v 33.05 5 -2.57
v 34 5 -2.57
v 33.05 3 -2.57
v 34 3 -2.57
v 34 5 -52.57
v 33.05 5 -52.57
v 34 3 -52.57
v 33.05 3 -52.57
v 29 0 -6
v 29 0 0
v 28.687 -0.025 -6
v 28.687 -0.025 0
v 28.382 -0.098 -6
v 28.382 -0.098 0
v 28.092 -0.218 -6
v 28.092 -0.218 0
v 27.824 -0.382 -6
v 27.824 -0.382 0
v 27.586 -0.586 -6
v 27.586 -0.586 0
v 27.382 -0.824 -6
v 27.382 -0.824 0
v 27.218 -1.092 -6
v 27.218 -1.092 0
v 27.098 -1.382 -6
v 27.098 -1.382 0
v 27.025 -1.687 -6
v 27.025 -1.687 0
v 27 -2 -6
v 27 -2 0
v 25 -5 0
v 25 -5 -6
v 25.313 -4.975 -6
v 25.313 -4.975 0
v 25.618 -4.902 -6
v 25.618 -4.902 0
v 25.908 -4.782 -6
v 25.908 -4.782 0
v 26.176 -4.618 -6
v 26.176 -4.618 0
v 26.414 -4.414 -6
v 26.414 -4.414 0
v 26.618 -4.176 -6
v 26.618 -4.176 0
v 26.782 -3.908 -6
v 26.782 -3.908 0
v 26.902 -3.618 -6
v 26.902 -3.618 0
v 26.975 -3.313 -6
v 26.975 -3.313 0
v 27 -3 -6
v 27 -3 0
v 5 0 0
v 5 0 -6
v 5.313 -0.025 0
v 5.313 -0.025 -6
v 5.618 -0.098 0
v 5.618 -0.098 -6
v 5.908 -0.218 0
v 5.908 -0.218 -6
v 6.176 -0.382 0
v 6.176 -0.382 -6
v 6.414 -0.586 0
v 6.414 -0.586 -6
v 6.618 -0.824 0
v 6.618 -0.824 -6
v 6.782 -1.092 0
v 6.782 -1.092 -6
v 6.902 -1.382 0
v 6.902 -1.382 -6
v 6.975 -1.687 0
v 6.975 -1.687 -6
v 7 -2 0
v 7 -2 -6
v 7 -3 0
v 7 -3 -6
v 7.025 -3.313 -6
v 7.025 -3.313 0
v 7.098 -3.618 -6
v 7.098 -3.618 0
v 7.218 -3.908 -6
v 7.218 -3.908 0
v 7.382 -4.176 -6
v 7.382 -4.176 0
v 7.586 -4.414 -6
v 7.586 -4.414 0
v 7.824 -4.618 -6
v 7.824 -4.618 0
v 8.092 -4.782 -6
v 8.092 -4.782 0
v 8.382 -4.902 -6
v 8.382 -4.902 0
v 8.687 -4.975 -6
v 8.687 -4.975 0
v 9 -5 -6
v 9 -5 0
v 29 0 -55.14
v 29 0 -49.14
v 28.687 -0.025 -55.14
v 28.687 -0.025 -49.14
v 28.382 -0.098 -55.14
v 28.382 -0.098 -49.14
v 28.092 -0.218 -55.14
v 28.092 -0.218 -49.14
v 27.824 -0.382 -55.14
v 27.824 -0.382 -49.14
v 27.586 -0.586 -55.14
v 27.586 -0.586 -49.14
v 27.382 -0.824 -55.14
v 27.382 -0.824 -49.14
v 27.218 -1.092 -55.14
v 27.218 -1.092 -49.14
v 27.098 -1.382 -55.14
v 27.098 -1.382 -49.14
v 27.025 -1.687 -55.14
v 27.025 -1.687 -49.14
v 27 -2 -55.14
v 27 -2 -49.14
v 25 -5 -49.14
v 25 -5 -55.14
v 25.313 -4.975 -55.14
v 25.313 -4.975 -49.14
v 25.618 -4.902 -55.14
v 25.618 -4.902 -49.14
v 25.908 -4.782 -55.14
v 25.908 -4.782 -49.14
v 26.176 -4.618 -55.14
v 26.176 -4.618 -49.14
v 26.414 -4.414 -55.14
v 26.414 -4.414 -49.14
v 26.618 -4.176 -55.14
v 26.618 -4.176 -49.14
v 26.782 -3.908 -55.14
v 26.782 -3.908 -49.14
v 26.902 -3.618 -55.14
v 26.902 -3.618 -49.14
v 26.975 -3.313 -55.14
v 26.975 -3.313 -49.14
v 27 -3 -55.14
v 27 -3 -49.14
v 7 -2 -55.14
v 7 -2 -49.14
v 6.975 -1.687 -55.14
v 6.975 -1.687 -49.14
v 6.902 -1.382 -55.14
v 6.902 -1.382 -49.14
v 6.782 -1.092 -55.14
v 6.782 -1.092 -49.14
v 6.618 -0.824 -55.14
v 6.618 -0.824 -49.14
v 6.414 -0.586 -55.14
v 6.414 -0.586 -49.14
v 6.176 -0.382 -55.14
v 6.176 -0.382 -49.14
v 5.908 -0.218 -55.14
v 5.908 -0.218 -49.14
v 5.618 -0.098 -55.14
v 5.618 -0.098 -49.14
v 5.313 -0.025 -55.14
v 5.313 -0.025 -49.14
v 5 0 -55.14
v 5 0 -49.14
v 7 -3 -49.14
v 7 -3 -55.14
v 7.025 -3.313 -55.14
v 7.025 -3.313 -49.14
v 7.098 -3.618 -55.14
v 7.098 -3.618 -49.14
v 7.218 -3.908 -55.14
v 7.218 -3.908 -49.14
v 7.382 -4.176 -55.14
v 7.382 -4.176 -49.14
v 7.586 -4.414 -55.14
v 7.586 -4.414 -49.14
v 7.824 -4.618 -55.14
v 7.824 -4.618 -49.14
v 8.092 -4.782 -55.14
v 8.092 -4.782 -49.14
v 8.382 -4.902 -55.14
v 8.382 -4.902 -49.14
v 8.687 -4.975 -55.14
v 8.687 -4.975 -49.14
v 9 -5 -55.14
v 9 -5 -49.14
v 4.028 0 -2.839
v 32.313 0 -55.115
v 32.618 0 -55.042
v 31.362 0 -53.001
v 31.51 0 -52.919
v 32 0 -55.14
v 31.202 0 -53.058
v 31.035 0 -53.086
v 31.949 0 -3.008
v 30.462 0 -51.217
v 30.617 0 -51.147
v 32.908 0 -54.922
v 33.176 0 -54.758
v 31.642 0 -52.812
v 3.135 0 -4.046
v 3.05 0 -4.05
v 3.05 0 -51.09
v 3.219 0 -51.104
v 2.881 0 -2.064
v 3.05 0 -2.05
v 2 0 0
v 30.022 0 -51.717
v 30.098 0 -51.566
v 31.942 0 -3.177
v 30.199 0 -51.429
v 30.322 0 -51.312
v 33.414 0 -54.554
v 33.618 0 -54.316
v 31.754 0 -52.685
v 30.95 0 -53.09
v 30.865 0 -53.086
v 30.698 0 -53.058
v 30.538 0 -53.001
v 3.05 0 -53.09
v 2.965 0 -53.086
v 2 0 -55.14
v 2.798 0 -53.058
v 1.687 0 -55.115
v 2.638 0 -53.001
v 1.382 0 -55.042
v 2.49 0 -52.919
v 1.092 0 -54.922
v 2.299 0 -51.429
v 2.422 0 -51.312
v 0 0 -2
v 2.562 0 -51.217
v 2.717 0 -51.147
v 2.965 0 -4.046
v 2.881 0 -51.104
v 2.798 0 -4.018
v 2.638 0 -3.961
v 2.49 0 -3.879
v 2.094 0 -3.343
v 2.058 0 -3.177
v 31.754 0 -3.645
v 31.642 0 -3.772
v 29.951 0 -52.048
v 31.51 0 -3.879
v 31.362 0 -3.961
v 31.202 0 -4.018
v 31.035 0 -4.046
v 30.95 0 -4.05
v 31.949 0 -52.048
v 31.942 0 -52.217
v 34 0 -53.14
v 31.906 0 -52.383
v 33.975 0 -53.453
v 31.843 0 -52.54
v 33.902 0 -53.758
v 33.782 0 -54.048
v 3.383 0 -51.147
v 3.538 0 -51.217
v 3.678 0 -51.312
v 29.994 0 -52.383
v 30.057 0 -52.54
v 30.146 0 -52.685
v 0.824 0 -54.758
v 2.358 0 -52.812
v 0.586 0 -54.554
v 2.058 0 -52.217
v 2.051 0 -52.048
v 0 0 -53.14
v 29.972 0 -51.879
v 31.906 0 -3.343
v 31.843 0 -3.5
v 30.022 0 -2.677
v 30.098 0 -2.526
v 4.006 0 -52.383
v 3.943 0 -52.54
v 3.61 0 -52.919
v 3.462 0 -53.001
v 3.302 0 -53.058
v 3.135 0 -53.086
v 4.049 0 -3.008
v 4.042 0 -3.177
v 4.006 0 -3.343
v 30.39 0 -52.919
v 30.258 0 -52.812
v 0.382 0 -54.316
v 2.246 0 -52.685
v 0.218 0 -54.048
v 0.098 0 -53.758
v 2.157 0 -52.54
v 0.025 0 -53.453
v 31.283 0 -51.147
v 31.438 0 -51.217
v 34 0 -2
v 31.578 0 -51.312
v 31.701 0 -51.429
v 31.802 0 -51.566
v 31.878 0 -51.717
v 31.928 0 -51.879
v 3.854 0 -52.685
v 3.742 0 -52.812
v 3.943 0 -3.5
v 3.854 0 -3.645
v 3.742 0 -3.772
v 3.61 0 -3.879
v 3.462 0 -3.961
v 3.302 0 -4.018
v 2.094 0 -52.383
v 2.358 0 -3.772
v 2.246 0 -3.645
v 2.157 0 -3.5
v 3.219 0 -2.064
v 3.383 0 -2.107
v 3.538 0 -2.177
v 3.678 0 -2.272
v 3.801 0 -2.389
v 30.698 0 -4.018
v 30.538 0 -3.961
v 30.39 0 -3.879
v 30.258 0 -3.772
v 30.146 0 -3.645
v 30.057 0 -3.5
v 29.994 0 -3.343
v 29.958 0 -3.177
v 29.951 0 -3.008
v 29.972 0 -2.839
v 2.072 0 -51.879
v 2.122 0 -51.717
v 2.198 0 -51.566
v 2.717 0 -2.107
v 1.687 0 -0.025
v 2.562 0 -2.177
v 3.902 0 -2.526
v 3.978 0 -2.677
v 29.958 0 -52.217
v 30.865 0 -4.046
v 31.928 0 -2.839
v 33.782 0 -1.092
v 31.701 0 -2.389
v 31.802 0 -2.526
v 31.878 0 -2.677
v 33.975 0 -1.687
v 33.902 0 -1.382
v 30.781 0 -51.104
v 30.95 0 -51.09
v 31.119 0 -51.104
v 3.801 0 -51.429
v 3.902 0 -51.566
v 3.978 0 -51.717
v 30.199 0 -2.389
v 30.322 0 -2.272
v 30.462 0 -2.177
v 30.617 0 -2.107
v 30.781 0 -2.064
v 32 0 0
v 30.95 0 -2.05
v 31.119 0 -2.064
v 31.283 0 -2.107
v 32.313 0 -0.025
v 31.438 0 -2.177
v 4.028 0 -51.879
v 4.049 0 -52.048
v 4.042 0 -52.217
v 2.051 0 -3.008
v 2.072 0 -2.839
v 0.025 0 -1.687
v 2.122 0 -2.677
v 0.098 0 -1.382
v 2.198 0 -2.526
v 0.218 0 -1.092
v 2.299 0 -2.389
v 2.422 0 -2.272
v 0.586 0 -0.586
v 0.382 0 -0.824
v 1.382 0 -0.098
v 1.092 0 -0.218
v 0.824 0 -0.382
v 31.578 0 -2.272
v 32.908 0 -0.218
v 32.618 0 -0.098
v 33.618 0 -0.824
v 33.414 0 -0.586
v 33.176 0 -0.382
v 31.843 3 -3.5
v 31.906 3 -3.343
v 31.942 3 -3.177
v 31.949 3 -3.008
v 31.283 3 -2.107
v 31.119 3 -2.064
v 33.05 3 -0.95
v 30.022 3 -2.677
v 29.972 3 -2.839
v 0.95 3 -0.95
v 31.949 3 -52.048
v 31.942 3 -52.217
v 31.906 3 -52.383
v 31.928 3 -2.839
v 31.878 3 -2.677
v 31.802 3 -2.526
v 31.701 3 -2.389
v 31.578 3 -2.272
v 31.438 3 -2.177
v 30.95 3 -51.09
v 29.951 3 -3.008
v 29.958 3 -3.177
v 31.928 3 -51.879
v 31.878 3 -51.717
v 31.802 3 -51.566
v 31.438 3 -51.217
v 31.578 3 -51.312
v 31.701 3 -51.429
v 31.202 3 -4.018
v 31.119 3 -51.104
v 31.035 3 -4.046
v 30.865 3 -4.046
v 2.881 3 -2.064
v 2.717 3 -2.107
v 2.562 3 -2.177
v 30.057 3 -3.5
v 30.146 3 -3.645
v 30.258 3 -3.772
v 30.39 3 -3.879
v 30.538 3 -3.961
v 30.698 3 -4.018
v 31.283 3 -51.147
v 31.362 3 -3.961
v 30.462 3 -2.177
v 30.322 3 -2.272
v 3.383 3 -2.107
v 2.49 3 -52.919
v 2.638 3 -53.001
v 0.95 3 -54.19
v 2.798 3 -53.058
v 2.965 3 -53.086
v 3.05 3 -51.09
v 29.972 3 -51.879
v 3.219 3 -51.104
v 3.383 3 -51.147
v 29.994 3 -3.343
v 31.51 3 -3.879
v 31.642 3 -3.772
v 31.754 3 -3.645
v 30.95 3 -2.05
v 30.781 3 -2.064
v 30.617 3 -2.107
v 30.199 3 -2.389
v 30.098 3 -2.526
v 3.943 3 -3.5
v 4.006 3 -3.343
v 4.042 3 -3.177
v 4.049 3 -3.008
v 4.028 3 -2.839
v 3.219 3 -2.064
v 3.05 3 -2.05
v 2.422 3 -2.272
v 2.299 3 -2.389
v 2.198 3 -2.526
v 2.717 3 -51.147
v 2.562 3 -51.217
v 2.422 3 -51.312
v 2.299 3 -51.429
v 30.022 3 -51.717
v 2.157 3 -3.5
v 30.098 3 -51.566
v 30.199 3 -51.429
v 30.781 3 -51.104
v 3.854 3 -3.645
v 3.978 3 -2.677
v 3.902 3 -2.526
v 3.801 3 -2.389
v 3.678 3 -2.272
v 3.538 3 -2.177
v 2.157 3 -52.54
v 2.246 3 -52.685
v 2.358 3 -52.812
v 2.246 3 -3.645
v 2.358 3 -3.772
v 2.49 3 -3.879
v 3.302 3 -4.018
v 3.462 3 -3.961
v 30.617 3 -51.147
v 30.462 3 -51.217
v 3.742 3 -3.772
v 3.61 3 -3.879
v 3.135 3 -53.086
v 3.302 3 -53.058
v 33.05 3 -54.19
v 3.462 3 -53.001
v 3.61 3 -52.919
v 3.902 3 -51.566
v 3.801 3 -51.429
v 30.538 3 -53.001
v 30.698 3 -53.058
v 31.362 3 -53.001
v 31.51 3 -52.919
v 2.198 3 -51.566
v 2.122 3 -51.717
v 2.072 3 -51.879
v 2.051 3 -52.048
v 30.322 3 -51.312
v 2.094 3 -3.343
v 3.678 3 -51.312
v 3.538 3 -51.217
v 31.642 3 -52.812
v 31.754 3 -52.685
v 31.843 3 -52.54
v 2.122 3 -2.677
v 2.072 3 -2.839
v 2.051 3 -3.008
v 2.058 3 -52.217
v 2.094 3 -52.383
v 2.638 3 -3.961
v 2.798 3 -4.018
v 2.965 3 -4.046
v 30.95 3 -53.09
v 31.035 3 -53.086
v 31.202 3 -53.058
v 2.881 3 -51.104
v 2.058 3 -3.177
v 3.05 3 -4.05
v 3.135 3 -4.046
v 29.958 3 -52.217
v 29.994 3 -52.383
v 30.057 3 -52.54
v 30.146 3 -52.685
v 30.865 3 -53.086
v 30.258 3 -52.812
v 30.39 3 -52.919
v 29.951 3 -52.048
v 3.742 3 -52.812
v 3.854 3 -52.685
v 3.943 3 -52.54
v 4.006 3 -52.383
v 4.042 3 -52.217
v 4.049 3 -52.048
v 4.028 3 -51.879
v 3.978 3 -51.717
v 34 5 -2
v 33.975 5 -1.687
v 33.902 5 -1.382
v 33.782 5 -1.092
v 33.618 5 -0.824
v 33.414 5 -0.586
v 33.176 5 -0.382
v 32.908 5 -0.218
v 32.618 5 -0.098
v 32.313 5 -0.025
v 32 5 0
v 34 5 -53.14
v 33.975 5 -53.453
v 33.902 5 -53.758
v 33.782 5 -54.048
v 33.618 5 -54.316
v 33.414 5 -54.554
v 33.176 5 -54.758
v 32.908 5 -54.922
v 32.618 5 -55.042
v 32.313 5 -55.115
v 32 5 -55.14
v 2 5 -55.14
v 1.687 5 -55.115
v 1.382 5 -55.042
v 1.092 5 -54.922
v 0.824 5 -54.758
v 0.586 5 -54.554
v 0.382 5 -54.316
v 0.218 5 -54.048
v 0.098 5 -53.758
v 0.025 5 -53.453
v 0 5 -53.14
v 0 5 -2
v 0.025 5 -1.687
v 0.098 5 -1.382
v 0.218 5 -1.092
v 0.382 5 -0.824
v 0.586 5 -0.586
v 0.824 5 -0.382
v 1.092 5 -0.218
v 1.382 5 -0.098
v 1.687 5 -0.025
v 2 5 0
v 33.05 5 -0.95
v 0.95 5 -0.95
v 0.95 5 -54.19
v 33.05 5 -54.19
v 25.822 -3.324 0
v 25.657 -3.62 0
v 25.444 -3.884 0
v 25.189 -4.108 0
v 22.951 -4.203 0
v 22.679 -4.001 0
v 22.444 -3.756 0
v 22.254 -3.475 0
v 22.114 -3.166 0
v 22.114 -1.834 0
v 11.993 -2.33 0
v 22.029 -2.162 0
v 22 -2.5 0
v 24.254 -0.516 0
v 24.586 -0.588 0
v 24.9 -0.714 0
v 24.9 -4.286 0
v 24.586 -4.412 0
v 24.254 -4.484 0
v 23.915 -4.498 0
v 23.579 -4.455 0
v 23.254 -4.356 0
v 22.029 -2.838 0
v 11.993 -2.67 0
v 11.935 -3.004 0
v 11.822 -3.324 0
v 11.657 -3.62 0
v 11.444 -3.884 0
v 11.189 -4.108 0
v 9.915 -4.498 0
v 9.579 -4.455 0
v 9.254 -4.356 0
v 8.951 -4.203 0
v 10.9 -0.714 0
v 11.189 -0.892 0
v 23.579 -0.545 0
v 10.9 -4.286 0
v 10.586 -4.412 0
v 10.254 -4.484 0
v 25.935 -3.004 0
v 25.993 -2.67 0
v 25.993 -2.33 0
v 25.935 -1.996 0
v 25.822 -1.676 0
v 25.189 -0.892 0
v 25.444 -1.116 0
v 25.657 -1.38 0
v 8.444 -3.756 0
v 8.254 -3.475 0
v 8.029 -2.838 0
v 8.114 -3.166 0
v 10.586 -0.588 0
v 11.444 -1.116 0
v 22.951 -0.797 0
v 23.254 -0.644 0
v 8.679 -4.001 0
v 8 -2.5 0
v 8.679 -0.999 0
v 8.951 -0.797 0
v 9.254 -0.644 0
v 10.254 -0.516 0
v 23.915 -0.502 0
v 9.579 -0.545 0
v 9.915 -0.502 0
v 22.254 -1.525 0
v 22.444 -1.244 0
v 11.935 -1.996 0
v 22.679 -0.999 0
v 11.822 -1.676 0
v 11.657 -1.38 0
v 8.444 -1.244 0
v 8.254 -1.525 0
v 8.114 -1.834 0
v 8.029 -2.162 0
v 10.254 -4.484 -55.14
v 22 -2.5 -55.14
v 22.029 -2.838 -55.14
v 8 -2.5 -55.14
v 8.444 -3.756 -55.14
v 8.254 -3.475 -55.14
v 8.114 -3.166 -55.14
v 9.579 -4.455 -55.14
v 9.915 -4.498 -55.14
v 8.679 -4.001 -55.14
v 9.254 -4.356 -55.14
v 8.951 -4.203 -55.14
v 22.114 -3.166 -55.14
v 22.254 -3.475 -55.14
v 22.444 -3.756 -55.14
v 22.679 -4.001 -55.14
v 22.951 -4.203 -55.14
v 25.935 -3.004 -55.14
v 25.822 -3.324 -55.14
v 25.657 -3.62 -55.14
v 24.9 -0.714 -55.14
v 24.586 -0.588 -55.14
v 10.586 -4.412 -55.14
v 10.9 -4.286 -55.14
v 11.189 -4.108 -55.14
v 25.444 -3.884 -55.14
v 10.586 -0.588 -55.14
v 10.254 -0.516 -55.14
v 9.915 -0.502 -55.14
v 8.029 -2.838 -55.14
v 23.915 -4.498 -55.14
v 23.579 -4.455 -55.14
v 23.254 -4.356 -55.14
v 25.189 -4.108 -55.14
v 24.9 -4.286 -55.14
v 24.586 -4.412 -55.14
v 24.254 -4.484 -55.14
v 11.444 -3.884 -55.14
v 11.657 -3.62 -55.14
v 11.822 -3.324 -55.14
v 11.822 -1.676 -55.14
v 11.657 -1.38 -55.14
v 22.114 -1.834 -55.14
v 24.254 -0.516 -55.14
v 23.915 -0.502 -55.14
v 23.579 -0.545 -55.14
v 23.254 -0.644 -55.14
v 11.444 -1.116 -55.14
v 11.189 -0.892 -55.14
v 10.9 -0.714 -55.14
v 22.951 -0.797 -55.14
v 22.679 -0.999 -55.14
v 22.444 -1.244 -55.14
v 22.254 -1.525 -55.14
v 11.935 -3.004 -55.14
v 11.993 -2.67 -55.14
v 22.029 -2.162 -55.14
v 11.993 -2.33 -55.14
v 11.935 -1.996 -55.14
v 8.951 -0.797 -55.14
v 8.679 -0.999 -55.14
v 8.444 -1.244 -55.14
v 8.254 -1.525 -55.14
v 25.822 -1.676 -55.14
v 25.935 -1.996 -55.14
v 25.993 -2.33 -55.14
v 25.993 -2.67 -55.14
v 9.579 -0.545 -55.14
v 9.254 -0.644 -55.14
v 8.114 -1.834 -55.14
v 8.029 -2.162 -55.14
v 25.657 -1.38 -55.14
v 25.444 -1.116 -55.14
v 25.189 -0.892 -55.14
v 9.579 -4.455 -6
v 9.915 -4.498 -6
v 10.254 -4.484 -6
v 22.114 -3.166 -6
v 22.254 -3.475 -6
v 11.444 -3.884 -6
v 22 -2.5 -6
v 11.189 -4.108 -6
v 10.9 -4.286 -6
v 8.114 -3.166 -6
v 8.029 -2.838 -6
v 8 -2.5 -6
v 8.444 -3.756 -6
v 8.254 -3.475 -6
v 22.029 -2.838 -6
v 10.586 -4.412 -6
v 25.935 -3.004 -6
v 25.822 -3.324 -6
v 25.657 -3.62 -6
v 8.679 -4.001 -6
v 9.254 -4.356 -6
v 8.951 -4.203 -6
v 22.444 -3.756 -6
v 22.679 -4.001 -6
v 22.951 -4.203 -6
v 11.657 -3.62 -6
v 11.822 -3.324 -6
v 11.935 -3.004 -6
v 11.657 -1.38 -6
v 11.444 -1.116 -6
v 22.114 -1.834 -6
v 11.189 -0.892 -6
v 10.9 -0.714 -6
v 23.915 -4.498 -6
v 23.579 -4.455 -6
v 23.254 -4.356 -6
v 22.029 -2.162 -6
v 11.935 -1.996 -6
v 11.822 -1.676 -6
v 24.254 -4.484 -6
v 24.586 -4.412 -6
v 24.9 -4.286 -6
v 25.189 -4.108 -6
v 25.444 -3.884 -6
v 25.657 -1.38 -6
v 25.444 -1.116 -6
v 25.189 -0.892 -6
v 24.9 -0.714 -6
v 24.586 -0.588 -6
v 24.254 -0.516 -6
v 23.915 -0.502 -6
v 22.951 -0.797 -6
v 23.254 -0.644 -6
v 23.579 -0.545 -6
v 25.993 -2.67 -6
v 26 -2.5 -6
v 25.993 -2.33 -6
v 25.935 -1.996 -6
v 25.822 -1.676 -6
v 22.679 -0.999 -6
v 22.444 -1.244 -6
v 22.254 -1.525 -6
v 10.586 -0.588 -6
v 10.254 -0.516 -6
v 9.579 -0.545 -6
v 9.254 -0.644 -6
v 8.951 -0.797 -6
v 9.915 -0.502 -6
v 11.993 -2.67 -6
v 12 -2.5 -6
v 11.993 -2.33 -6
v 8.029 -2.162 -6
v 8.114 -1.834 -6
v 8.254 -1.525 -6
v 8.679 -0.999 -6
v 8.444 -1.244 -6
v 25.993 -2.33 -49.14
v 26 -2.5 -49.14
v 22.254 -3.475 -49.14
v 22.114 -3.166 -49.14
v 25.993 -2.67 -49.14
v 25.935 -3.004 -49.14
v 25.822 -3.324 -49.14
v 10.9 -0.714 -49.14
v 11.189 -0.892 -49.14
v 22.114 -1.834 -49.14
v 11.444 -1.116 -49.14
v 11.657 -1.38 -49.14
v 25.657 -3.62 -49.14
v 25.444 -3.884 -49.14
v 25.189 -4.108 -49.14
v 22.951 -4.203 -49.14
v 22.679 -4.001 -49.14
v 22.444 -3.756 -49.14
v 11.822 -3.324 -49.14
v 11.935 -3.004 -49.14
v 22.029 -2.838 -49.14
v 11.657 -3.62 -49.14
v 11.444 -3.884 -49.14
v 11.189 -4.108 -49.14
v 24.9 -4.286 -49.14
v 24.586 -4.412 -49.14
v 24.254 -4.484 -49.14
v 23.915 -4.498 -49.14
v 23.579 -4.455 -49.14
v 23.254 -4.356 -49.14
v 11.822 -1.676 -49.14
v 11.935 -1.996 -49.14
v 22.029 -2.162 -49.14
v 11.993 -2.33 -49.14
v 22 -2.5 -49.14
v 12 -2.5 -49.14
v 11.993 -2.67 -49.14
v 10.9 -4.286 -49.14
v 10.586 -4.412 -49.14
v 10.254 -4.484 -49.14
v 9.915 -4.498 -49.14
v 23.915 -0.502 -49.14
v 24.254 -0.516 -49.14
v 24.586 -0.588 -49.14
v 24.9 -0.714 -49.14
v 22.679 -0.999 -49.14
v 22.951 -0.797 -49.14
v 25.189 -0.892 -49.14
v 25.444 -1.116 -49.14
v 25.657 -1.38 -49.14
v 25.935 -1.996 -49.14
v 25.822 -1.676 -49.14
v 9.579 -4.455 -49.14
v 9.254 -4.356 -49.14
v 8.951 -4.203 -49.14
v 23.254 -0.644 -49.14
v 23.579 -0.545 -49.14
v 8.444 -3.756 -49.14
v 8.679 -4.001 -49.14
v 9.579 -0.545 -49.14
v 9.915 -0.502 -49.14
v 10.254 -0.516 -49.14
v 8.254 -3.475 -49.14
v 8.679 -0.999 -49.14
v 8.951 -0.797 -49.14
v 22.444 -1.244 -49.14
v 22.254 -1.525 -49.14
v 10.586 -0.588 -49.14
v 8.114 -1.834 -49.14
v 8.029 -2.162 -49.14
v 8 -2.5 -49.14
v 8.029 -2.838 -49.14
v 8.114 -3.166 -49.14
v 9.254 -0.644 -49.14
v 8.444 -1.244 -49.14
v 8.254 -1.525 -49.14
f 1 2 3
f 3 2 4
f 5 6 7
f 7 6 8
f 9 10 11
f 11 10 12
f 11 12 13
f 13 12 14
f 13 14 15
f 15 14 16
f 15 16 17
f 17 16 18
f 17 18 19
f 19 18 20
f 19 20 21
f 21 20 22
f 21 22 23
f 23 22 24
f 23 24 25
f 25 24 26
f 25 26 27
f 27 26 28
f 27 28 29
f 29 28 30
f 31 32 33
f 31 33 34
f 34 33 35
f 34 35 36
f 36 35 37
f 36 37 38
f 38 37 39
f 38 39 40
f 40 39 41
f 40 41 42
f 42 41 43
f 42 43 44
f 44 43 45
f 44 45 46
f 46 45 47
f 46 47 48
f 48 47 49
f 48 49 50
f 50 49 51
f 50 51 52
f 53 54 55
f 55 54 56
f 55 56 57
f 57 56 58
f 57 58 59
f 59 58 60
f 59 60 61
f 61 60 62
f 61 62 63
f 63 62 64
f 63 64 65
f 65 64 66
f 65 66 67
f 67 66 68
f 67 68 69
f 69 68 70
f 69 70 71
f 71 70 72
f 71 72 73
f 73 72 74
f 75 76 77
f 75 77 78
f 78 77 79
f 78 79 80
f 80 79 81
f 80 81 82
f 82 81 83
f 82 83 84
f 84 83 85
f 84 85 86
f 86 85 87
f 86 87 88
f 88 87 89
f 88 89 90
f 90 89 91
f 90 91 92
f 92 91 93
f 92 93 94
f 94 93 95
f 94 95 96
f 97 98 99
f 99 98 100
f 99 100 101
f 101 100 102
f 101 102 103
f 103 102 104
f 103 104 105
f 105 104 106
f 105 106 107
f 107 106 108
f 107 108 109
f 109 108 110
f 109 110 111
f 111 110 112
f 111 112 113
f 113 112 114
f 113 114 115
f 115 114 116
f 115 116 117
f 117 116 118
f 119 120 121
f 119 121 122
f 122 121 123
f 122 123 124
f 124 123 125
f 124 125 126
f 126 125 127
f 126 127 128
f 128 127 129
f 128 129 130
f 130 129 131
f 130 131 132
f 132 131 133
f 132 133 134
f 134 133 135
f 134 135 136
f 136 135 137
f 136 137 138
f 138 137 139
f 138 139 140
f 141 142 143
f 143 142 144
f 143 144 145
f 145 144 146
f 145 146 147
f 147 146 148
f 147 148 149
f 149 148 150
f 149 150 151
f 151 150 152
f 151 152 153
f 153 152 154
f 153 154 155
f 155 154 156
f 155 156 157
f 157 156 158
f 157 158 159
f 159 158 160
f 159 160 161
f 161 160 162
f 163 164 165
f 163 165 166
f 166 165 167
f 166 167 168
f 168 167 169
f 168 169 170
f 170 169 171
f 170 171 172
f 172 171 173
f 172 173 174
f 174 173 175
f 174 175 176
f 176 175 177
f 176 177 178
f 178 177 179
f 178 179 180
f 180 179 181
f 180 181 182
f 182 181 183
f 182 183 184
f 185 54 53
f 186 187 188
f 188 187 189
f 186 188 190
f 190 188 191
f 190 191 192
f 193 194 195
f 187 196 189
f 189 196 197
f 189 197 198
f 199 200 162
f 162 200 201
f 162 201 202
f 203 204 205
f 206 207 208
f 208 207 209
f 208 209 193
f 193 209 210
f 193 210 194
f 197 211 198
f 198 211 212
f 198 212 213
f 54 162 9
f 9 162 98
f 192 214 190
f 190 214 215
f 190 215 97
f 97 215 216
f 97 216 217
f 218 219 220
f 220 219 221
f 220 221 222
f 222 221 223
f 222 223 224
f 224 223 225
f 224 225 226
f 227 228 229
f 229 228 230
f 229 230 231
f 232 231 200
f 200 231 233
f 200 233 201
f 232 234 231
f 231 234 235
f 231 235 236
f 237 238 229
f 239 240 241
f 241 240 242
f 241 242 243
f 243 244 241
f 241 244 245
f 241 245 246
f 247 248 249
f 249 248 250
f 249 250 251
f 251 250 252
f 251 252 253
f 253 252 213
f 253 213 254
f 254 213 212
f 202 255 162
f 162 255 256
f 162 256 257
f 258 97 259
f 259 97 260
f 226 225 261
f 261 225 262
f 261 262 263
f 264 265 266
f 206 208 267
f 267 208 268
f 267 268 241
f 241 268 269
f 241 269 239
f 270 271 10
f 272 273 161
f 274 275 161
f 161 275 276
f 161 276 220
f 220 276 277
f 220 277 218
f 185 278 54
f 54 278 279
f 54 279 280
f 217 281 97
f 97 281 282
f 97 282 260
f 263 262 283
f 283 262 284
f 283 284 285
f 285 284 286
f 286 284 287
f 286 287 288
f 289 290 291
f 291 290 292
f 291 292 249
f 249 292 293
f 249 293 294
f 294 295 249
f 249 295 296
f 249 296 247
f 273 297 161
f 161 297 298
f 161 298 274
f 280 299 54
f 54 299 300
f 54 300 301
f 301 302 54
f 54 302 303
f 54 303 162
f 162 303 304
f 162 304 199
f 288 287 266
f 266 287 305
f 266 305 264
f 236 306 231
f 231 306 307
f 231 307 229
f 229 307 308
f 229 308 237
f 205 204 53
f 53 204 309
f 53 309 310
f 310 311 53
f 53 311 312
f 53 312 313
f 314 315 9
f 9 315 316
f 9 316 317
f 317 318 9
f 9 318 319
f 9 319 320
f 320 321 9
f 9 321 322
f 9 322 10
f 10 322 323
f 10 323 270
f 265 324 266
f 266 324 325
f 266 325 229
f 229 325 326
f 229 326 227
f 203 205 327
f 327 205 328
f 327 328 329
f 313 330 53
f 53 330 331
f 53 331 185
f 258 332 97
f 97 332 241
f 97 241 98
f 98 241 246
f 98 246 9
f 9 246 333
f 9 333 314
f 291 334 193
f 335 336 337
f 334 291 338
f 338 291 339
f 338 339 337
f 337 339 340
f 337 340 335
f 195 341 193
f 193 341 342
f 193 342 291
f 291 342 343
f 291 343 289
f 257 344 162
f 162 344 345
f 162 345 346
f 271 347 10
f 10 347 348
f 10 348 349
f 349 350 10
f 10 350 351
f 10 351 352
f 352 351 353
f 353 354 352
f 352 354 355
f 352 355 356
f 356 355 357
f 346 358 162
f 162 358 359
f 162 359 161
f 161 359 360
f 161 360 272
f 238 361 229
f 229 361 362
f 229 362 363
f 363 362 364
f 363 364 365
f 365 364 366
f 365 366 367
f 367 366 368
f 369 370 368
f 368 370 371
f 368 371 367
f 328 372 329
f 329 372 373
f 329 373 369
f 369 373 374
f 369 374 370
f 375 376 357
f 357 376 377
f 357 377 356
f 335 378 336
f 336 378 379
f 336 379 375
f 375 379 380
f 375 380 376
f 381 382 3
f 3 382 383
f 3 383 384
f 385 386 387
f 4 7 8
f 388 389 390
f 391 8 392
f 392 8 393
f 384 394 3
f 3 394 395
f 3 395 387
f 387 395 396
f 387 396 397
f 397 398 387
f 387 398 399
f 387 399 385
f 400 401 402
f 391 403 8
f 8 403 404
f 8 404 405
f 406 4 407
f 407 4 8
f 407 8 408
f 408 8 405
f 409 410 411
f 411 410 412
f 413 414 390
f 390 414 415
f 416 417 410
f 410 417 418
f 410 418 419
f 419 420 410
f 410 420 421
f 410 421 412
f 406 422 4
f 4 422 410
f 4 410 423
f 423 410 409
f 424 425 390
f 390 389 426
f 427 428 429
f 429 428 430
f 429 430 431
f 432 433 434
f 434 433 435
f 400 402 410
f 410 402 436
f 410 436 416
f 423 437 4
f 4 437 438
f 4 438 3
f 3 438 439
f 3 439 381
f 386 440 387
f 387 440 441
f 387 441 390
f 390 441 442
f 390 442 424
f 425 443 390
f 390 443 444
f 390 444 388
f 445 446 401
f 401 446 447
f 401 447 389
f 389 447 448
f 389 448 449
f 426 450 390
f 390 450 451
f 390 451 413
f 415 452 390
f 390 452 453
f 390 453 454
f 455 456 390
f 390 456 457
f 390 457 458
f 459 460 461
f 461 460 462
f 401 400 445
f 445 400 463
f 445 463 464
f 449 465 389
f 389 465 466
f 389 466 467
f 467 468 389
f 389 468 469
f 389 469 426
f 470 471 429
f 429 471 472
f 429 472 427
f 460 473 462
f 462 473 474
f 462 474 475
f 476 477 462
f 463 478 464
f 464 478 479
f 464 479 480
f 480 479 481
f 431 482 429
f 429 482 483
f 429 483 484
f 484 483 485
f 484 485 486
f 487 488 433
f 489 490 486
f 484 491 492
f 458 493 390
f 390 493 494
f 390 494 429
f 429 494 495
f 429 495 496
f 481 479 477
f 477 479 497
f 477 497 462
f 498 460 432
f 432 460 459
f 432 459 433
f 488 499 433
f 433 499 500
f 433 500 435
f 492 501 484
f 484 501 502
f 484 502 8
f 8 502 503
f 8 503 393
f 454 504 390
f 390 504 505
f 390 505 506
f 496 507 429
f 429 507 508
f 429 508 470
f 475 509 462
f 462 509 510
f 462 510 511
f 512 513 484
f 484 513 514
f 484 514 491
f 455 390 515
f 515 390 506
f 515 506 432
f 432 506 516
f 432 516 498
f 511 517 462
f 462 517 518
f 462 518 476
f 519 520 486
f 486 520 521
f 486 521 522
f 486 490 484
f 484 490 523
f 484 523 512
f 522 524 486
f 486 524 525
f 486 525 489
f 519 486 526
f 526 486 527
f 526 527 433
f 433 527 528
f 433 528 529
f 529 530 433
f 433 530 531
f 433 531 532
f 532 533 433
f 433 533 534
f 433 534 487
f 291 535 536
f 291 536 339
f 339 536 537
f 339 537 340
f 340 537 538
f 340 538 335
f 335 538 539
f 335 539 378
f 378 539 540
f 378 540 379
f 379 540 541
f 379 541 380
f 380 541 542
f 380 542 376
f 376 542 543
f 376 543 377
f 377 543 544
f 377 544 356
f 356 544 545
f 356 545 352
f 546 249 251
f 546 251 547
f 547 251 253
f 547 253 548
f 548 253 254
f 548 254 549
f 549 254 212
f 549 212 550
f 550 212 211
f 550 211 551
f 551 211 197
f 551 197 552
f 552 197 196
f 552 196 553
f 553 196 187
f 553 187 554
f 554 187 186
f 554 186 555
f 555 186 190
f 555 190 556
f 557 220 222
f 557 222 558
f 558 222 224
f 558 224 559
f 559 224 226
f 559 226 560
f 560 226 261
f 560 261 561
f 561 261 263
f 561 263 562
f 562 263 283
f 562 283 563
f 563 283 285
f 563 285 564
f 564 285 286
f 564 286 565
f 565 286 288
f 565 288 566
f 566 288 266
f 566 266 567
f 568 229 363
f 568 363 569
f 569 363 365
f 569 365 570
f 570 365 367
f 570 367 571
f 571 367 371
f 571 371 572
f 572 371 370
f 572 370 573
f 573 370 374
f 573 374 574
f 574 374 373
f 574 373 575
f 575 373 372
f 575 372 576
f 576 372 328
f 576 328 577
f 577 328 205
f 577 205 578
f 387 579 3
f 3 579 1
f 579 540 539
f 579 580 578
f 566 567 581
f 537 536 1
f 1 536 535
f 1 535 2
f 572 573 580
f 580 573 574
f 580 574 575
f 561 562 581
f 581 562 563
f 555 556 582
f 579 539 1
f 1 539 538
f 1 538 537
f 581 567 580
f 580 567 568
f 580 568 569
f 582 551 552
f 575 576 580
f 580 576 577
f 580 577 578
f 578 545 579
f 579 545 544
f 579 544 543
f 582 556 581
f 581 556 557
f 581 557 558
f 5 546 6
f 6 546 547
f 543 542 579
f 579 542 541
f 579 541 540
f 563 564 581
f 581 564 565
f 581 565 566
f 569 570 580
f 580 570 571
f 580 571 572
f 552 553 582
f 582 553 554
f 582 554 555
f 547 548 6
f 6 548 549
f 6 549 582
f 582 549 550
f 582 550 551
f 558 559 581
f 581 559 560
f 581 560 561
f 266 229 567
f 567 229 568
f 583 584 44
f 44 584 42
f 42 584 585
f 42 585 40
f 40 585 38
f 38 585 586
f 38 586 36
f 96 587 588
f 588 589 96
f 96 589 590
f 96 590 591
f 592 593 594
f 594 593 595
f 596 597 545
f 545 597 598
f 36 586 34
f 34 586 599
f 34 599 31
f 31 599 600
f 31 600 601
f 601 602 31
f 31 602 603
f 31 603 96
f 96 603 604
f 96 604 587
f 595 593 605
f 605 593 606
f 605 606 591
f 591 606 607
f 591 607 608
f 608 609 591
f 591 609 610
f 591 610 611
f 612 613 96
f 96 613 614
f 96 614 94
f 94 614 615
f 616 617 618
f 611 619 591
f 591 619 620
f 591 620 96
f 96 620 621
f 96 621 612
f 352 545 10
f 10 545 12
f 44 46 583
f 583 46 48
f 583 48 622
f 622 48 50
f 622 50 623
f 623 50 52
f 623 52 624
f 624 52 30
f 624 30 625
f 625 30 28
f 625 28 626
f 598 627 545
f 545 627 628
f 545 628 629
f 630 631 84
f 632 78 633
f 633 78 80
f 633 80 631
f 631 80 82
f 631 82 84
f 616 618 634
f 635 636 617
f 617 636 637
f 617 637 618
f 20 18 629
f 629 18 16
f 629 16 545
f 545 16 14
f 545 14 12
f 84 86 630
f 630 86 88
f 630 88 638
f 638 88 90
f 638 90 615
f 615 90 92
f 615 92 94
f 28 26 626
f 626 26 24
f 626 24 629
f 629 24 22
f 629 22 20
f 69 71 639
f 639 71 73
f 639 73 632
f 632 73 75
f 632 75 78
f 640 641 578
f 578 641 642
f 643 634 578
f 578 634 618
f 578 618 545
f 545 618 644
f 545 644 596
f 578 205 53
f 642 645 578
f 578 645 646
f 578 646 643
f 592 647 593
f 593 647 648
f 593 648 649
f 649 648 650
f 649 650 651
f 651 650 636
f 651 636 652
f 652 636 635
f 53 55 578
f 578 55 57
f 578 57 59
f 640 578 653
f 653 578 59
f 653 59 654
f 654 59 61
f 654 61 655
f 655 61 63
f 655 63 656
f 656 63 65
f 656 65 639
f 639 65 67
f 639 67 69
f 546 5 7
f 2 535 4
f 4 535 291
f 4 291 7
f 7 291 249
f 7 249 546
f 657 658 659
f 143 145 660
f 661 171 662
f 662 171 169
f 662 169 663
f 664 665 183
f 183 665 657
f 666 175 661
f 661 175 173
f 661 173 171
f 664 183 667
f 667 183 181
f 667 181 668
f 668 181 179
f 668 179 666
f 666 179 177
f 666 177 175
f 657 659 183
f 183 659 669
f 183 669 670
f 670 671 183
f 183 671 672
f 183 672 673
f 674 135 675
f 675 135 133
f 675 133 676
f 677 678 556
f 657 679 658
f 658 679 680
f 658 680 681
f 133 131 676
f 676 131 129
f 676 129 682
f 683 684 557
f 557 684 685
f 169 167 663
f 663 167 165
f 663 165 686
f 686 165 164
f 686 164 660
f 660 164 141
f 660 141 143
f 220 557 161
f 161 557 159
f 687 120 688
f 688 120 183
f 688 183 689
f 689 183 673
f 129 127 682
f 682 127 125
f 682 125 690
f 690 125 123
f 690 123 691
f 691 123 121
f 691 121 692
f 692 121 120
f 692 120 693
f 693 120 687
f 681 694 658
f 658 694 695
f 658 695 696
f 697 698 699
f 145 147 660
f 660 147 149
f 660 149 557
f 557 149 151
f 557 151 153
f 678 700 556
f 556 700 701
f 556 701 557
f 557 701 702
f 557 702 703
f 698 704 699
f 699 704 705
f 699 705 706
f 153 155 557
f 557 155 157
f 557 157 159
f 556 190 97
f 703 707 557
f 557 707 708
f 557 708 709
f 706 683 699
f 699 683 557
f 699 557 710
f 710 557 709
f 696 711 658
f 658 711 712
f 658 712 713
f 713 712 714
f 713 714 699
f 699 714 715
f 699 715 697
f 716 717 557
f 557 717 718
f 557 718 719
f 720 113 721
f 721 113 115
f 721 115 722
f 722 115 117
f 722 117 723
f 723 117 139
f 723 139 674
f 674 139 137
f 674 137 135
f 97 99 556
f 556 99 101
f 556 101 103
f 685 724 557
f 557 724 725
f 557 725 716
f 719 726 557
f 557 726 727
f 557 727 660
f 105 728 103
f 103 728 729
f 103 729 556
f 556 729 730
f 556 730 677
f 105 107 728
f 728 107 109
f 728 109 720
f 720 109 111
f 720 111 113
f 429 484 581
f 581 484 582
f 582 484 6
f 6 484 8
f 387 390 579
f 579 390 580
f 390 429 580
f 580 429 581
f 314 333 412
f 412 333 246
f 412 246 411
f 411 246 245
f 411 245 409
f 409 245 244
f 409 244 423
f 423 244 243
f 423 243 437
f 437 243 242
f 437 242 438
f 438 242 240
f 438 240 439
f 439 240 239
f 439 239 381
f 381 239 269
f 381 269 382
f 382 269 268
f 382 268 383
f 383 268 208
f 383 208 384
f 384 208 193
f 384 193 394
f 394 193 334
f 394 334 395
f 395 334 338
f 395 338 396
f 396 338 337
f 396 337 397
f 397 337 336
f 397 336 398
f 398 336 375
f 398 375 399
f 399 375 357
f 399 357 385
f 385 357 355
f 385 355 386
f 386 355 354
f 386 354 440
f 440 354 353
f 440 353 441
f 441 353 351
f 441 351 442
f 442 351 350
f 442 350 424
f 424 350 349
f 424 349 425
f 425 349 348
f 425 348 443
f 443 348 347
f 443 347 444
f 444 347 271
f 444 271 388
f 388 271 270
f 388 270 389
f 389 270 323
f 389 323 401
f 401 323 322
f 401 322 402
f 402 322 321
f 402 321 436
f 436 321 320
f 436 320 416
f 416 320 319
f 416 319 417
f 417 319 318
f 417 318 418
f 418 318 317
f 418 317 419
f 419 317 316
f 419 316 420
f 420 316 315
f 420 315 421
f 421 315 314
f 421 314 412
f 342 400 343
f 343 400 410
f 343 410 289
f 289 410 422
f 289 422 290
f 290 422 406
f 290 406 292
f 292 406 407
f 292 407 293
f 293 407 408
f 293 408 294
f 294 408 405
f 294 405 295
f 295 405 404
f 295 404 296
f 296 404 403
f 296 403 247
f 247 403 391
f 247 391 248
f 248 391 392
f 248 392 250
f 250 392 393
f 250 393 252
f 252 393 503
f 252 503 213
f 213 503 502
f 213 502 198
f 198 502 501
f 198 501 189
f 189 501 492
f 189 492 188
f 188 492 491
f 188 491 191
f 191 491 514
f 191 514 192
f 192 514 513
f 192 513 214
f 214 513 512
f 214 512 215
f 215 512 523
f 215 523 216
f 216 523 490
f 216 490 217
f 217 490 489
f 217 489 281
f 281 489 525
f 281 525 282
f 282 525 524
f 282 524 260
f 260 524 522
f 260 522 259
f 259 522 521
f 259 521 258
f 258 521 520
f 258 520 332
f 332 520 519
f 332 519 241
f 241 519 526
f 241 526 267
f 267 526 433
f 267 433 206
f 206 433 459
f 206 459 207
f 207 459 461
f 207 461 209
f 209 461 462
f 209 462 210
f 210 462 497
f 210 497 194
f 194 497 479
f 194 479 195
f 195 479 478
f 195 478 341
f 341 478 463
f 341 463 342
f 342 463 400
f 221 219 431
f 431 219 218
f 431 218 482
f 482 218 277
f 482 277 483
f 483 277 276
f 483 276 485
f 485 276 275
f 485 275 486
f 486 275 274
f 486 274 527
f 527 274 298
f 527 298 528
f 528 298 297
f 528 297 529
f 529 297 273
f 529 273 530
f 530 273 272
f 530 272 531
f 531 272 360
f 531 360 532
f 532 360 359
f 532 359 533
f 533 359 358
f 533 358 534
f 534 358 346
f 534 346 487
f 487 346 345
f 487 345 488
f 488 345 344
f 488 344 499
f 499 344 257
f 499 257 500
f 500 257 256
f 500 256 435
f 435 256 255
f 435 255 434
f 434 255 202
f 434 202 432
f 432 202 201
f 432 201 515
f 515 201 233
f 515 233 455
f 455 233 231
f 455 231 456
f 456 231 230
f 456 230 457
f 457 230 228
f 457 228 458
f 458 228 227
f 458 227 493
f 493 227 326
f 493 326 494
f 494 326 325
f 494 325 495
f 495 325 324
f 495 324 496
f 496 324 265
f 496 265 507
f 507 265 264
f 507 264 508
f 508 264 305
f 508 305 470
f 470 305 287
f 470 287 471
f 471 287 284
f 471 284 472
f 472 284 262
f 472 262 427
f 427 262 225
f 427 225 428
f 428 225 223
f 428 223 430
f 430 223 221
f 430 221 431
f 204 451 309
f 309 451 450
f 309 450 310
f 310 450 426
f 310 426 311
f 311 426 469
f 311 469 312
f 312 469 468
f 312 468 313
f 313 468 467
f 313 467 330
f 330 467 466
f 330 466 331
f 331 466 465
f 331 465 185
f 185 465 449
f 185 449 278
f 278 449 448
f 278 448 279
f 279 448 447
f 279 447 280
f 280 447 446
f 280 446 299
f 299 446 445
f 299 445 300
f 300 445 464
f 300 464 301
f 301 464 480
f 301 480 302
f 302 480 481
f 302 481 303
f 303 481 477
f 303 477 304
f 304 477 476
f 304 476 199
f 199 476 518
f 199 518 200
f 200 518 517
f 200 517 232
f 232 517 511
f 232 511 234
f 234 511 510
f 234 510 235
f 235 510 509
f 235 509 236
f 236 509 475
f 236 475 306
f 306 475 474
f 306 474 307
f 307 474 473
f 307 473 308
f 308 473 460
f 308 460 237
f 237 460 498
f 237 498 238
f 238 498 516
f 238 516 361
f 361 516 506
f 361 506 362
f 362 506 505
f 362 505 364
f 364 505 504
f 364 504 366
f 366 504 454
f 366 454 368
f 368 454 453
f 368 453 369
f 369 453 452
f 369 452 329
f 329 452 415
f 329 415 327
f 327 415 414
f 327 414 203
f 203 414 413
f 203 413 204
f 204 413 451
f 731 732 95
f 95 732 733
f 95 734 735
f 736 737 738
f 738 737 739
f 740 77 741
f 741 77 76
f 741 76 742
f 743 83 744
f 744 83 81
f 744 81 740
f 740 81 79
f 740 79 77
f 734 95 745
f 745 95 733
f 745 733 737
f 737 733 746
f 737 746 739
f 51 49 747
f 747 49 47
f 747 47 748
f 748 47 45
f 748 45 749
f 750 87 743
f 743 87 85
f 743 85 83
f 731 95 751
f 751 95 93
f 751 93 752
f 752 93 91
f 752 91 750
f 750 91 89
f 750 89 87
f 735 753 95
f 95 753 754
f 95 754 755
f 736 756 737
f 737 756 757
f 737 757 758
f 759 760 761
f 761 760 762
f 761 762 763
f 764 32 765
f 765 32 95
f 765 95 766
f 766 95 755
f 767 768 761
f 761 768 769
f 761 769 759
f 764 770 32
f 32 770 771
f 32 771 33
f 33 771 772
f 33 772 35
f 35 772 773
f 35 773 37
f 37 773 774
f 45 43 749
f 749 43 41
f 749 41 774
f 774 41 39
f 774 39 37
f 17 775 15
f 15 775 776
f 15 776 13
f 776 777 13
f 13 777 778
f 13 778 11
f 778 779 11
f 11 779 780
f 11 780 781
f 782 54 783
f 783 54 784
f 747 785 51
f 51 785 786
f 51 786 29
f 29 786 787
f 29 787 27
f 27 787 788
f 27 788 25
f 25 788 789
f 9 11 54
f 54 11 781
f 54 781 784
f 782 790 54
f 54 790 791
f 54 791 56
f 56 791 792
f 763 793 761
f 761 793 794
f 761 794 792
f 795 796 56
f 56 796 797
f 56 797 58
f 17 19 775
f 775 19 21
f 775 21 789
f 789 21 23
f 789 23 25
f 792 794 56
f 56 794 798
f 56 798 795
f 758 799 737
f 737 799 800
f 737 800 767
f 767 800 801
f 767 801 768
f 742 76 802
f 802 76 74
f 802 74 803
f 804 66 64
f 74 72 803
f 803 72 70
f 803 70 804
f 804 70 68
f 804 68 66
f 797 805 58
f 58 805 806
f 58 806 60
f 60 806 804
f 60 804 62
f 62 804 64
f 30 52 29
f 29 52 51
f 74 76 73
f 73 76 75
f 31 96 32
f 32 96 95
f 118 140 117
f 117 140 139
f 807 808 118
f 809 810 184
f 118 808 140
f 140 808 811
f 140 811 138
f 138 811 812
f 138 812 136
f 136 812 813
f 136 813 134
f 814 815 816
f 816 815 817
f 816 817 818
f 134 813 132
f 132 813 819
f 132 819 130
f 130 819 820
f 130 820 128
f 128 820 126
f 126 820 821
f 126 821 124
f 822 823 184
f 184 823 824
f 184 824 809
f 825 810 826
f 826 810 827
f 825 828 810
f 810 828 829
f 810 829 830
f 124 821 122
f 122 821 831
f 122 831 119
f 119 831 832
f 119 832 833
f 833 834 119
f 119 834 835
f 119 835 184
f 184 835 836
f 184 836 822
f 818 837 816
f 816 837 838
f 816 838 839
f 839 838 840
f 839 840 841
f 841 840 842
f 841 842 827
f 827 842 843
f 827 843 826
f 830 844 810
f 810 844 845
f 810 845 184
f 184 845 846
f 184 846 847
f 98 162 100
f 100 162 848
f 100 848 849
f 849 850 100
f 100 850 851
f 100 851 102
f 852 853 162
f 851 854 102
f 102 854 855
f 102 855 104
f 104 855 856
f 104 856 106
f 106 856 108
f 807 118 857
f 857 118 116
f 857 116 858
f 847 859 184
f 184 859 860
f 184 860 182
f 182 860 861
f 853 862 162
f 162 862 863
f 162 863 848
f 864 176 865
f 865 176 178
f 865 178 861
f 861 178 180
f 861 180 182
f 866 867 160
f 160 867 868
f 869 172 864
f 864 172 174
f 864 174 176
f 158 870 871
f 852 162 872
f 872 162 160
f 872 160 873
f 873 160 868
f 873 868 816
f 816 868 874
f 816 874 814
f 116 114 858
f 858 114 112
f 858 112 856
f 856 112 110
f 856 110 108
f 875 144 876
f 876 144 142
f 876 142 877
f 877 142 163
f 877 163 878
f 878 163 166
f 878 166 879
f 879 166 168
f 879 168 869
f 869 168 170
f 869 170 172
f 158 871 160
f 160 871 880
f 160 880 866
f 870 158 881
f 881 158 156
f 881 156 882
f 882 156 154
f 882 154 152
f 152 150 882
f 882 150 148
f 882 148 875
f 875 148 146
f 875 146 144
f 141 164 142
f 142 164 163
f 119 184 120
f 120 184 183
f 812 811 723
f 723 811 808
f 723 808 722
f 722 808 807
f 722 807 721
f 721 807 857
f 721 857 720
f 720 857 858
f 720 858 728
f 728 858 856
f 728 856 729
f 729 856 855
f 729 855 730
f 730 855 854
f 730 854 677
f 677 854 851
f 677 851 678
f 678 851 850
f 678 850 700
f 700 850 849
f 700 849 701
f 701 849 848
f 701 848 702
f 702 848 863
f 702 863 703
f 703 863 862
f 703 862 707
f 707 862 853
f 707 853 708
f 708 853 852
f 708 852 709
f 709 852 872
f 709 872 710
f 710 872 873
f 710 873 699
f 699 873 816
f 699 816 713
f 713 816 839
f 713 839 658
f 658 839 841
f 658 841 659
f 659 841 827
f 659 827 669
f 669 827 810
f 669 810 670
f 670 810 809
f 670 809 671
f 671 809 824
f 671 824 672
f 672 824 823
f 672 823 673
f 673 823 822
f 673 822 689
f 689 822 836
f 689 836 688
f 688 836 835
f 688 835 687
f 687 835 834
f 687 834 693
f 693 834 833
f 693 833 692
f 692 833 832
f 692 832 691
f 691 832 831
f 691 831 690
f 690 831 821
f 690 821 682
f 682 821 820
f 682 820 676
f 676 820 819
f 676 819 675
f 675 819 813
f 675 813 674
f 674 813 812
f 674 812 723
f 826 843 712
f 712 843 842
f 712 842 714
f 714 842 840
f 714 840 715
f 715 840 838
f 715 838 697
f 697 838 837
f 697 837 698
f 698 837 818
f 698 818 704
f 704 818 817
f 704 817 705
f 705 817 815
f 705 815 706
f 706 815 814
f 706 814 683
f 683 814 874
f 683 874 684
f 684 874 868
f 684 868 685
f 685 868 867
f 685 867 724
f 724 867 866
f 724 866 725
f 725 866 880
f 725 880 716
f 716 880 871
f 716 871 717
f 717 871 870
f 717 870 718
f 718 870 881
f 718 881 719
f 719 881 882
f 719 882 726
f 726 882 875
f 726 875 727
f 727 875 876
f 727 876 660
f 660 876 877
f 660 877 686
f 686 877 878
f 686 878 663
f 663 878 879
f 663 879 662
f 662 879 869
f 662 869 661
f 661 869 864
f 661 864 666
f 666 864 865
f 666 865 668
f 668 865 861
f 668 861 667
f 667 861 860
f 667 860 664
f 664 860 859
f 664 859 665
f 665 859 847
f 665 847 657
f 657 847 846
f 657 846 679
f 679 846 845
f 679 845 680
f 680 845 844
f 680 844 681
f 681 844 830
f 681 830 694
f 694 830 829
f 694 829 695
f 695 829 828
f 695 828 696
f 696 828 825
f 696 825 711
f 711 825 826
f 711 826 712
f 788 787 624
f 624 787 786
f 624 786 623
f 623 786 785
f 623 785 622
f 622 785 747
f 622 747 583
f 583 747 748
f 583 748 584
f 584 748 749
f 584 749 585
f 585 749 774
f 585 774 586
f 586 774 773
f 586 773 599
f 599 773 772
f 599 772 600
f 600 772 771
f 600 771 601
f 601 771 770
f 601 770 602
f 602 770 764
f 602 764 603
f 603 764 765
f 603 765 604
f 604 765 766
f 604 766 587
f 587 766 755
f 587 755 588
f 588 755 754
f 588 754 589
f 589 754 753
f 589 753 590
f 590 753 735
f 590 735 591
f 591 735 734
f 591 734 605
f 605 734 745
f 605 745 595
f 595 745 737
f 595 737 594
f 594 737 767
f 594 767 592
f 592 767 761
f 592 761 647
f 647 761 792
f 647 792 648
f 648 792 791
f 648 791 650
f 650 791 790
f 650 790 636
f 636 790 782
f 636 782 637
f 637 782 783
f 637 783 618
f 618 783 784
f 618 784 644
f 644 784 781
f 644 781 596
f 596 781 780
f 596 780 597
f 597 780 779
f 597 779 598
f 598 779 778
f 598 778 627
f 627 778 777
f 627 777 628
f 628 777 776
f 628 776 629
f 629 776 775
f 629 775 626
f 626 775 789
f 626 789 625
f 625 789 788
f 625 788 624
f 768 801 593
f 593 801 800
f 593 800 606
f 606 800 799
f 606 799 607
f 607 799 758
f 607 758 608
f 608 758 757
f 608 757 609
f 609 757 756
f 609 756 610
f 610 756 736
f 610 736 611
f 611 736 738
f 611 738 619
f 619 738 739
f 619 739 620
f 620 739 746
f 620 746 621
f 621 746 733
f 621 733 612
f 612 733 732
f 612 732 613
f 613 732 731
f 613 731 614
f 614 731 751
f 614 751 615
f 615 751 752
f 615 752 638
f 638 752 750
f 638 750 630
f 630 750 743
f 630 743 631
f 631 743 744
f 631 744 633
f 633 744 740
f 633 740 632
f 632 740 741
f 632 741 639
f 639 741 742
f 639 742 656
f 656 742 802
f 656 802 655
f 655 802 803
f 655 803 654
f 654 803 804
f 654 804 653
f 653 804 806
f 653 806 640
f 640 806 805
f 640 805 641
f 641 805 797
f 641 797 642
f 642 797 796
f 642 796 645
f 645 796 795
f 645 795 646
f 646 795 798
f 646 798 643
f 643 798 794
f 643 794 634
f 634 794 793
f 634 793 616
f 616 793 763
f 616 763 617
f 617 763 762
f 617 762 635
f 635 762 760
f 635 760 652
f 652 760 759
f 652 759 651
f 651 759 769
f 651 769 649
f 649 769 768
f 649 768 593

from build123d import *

# Parameters (mm, degrees)
SKETCH_1_W          = 34
SKETCH_1_H          = 55.14
EXTRUDE_1_DEPTH     = 5
SKETCH_2_W          = 32.1
SKETCH_2_H          = 53.24
CUT_EXTRUDE_1_DEPTH = 2
SKETCH_3_W          = 50
SKETCH_3_H          = 10
CUT_EXTRUDE_2_DEPTH = 2
FILLET_3_R          = 2
FILLET_4_R          = 2
FILLET_5_R          = 2
FILLET_6_R          = 2
SKETCH_5_R          = 1
CUT_EXTRUDE_3_DEPTH = 5
CUT_EXTRUDE_5_DEPTH = 5
SKETCH_7_W          = 24.577640881
SKETCH_7_H          = 46.089683544
EXTRUDE_3_DEPTH     = 3
SKETCH_8_W          = 20
SKETCH_8_H          = 6
EXTRUDE_5_DEPTH     = 5
SKETCH_9_W          = 20
SKETCH_9_H          = 6
EXTRUDE_6_DEPTH     = 5
CUT_EXTRUDE_6_DEPTH = 65.972452624
FILLET_7_R          = 2
FILLET_8_R          = 2
FILLET_9_R          = 2
FILLET_10_R         = 2
FILLET_11_R         = 2
FILLET_12_R         = 2
FILLET_13_R         = 2
FILLET_14_R         = 2
SKETCH_11_W         = 2
SKETCH_11_H         = 50
EXTRUDE_7_DEPTH     = 3


with BuildPart() as part:
    # 草图1 → 凸台-拉伸1 (new body)
    with BuildSketch(Plane(origin=(0, 0, 0), x_dir=(1, 0, 0), z_dir=(0, 1, 0))):
        with Locations((17, 27.57)):
            Rectangle(SKETCH_1_W, SKETCH_1_H)
    extrude(amount=EXTRUDE_1_DEPTH)

    # 草图2 → 切除-拉伸1 (cut)
    with BuildSketch(Plane(origin=(0, 5, 0), x_dir=(1, 0, 0), z_dir=(0, 1, 0))):
        with Locations((17, 27.57)):
            Rectangle(SKETCH_2_W, SKETCH_2_H)
    extrude(amount=-CUT_EXTRUDE_1_DEPTH, mode=Mode.SUBTRACT)

    # 草图3 → 切除-拉伸2 (cut)
    with BuildSketch(Plane(origin=(34, 0, 0), x_dir=(0, 0, -1), z_dir=(1, 0, 0))):
        with Locations((27.57, 5)):
            Rectangle(SKETCH_3_W, SKETCH_3_H)
    extrude(amount=-CUT_EXTRUDE_2_DEPTH, mode=Mode.SUBTRACT)

    # 圆角3
    fillet_3_edges = [part.edges().sort_by_distance(p)[0] for p in [
        (0, 2.5, 0),
    ]]
    fillet(fillet_3_edges, radius=FILLET_3_R)

    # 圆角4
    fillet_4_edges = [part.edges().sort_by_distance(p)[0] for p in [
        (0, 2.5, -55.14),
    ]]
    fillet(fillet_4_edges, radius=FILLET_4_R)

    # 圆角5
    fillet_5_edges = [part.edges().sort_by_distance(p)[0] for p in [
        (34, 2.5, -55.14),
    ]]
    fillet(fillet_5_edges, radius=FILLET_5_R)

    # 圆角6
    fillet_6_edges = [part.edges().sort_by_distance(p)[0] for p in [
        (34, 2.5, 0),
    ]]
    fillet(fillet_6_edges, radius=FILLET_6_R)

    # 草图5 → 切除-拉伸3 (cut)
    with BuildSketch(Plane(origin=(0, 3, 0), x_dir=(1, 0, 0), z_dir=(0, 1, 0))):
        with Locations(Location((3.05, 52.09, 0), (0, 0, 270))):
            Circle(SKETCH_5_R)
        with Locations(Location((3.05, 3.05, 0), (0, 0, 90))):
            Circle(SKETCH_5_R)
        with Locations(Location((30.95, 3.05, 0), (0, 0, 270))):
            Circle(SKETCH_5_R)
        with Locations(Location((30.95, 52.09, 0), (0, 0, 90))):
            Circle(SKETCH_5_R)
    extrude(amount=-CUT_EXTRUDE_3_DEPTH, mode=Mode.SUBTRACT)

    # 草图6 → 切除-拉伸5 (cut)
    with BuildSketch(Plane(origin=(0, 3, 0), x_dir=(1, 0, 0), z_dir=(0, 1, 0))):
        with BuildLine():
            ThreePointArc((5.05, 49.09), (5.342893219, 49.797106781), (6.05, 50.09))
            Line((6.05, 50.09), (6.254717451, 50.09))
            ThreePointArc((6.254717451, 50.09), (6.961824232, 49.797106781), (7.254717451, 49.09))
            Line((7.254717451, 49.09), (7.254717451, 6.05))
            ThreePointArc((7.254717451, 6.05), (6.961824232, 5.342893219), (6.254717451, 5.05))
            Line((6.254717451, 5.05), (6.05, 5.05))
            ThreePointArc((6.05, 5.05), (5.342893219, 5.342893219), (5.05, 6.05))
            Line((5.05, 6.05), (5.05, 49.09))
        make_face()
        with BuildLine():
            ThreePointArc((10.05, 49.09), (10.342893219, 49.797106781), (11.05, 50.09))
            Line((11.05, 50.09), (11.254717451, 50.09))
            ThreePointArc((11.254717451, 50.09), (11.961824232, 49.797106781), (12.254717451, 49.09))
            Line((12.254717451, 49.09), (12.254717451, 6.05))
            ThreePointArc((12.254717451, 6.05), (11.961824232, 5.342893219), (11.254717451, 5.05))
            Line((11.254717451, 5.05), (11.05, 5.05))
            ThreePointArc((11.05, 5.05), (10.342893219, 5.342893219), (10.05, 6.05))
            Line((10.05, 6.05), (10.05, 49.09))
        make_face()
        with BuildLine():
            ThreePointArc((20.05, 49.09), (20.342893219, 49.797106781), (21.05, 50.09))
            Line((21.05, 50.09), (21.254717451, 50.09))
            ThreePointArc((21.254717451, 50.09), (21.961824232, 49.797106781), (22.254717451, 49.09))
            Line((22.254717451, 49.09), (22.254717451, 6.05))
            ThreePointArc((22.254717451, 6.05), (21.961824232, 5.342893219), (21.254717451, 5.05))
            Line((21.254717451, 5.05), (21.05, 5.05))
            ThreePointArc((21.05, 5.05), (20.342893219, 5.342893219), (20.05, 6.05))
            Line((20.05, 6.05), (20.05, 49.09))
        make_face()
        with BuildLine():
            ThreePointArc((26.05, 5.05), (25.342893219, 5.342893219), (25.05, 6.05))
            Line((25.05, 6.05), (25.05, 49.09))
            ThreePointArc((25.05, 49.09), (25.342893219, 49.797106781), (26.05, 50.09))
            Line((26.05, 50.09), (26.254717451, 50.09))
            ThreePointArc((26.254717451, 50.09), (26.961824232, 49.797106781), (27.254717451, 49.09))
            Line((27.254717451, 49.09), (27.254717451, 6.05))
            ThreePointArc((27.254717451, 6.05), (26.961824232, 5.342893219), (26.254717451, 5.05))
            Line((26.254717451, 5.05), (26.05, 5.05))
        make_face()
        with BuildLine():
            Line((15.05, 49.09), (15.05, 6.05))
            ThreePointArc((15.05, 6.05), (15.342893219, 5.342893219), (16.05, 5.05))
            Line((16.05, 5.05), (16.254717451, 5.05))
            ThreePointArc((16.254717451, 5.05), (16.961824232, 5.342893219), (17.254717451, 6.05))
            Line((17.254717451, 6.05), (17.254717451, 49.09))
            ThreePointArc((17.254717451, 49.09), (16.961824232, 49.797106781), (16.254717451, 50.09))
            Line((16.254717451, 50.09), (16.05, 50.09))
            ThreePointArc((16.05, 50.09), (15.342893219, 49.797106781), (15.05, 49.09))
        make_face()
    extrude(amount=-CUT_EXTRUDE_5_DEPTH, mode=Mode.SUBTRACT)

    # 草图7 → 凸台-拉伸3 (add)
    with BuildSketch(Plane.XZ):
        with Locations((15.625766317, -27.57)):
            Rectangle(SKETCH_7_W, SKETCH_7_H)
    extrude(amount=-EXTRUDE_3_DEPTH)

    # 草图8 → 凸台-拉伸5 (add)
    with BuildSketch(Plane.XZ):
        with Locations((17, -3)):
            Rectangle(SKETCH_8_W, SKETCH_8_H)
    extrude(amount=EXTRUDE_5_DEPTH)

    # 草图9 → 凸台-拉伸6 (add)
    with BuildSketch(Plane.XZ):
        with Locations((17, -52.14)):
            Rectangle(SKETCH_9_W, SKETCH_9_H)
    extrude(amount=EXTRUDE_6_DEPTH)

    # 草图10 → 切除-拉伸6 (cut, through all)
    with BuildSketch(Plane(origin=(0, 0, -55.14), x_dir=(-1, 0, 0), z_dir=(0, 0, -1))):
        with BuildLine():
            ThreePointArc((-8, -2.5), (-11.414213562, -1.085786438), (-10, -4.5))
            Line((-10, -4.5), (-10, -2.5))
            Line((-10, -2.5), (-8, -2.5))
        make_face()
        with BuildLine():
            Line((-10, -2.5), (-10, -4.5))
            ThreePointArc((-10, -4.5), (-8.585786438, -3.914213562), (-8, -2.5))
            Line((-8, -2.5), (-10, -2.5))
        make_face()
        with BuildLine():
            ThreePointArc((-26, -2.5), (-25.414213562, -3.914213562), (-24, -4.5))
            Line((-24, -4.5), (-24, -2.5))
            Line((-24, -2.5), (-26, -2.5))
        make_face()
        with BuildLine():
            Line((-24, -2.5), (-24, -4.5))
            ThreePointArc((-24, -4.5), (-22.585786438, -3.914213562), (-22, -2.5))
            ThreePointArc((-22, -2.5), (-24, -0.5), (-26, -2.5))
            Line((-26, -2.5), (-24, -2.5))
        make_face()
    extrude(amount=-CUT_EXTRUDE_6_DEPTH, mode=Mode.SUBTRACT)

    # 圆角7
    fillet_7_edges = [part.edges().sort_by_distance(p)[0] for p in [
        (7, -5, -52.14),
    ]]
    fillet(fillet_7_edges, radius=FILLET_7_R)

    # 圆角8
    fillet_8_edges = [part.edges().sort_by_distance(p)[0] for p in [
        (7, 0, -52.14),
    ]]
    fillet(fillet_8_edges, radius=FILLET_8_R)

    # 圆角9
    fillet_9_edges = [part.edges().sort_by_distance(p)[0] for p in [
        (27, -5, -52.14),
    ]]
    fillet(fillet_9_edges, radius=FILLET_9_R)

    # 圆角10
    fillet_10_edges = [part.edges().sort_by_distance(p)[0] for p in [
        (27, 0, -52.14),
    ]]
    fillet(fillet_10_edges, radius=FILLET_10_R)

    # 圆角11
    fillet_11_edges = [part.edges().sort_by_distance(p)[0] for p in [
        (7, -5, -3),
    ]]
    fillet(fillet_11_edges, radius=FILLET_11_R)

    # 圆角12
    fillet_12_edges = [part.edges().sort_by_distance(p)[0] for p in [
        (7, 0, -3),
    ]]
    fillet(fillet_12_edges, radius=FILLET_12_R)

    # 圆角13
    fillet_13_edges = [part.edges().sort_by_distance(p)[0] for p in [
        (27, -5, -3),
    ]]
    fillet(fillet_13_edges, radius=FILLET_13_R)

    # 圆角14
    fillet_14_edges = [part.edges().sort_by_distance(p)[0] for p in [
        (27, 0, -3),
    ]]
    fillet(fillet_14_edges, radius=FILLET_14_R)

    # 草图11 → 凸台-拉伸7 (add)
    with BuildSketch(Plane.XZ):
        with Locations((33, -27.57)):
            Rectangle(SKETCH_11_W, SKETCH_11_H)
    extrude(amount=-EXTRUDE_7_DEPTH)


solid = part.part
